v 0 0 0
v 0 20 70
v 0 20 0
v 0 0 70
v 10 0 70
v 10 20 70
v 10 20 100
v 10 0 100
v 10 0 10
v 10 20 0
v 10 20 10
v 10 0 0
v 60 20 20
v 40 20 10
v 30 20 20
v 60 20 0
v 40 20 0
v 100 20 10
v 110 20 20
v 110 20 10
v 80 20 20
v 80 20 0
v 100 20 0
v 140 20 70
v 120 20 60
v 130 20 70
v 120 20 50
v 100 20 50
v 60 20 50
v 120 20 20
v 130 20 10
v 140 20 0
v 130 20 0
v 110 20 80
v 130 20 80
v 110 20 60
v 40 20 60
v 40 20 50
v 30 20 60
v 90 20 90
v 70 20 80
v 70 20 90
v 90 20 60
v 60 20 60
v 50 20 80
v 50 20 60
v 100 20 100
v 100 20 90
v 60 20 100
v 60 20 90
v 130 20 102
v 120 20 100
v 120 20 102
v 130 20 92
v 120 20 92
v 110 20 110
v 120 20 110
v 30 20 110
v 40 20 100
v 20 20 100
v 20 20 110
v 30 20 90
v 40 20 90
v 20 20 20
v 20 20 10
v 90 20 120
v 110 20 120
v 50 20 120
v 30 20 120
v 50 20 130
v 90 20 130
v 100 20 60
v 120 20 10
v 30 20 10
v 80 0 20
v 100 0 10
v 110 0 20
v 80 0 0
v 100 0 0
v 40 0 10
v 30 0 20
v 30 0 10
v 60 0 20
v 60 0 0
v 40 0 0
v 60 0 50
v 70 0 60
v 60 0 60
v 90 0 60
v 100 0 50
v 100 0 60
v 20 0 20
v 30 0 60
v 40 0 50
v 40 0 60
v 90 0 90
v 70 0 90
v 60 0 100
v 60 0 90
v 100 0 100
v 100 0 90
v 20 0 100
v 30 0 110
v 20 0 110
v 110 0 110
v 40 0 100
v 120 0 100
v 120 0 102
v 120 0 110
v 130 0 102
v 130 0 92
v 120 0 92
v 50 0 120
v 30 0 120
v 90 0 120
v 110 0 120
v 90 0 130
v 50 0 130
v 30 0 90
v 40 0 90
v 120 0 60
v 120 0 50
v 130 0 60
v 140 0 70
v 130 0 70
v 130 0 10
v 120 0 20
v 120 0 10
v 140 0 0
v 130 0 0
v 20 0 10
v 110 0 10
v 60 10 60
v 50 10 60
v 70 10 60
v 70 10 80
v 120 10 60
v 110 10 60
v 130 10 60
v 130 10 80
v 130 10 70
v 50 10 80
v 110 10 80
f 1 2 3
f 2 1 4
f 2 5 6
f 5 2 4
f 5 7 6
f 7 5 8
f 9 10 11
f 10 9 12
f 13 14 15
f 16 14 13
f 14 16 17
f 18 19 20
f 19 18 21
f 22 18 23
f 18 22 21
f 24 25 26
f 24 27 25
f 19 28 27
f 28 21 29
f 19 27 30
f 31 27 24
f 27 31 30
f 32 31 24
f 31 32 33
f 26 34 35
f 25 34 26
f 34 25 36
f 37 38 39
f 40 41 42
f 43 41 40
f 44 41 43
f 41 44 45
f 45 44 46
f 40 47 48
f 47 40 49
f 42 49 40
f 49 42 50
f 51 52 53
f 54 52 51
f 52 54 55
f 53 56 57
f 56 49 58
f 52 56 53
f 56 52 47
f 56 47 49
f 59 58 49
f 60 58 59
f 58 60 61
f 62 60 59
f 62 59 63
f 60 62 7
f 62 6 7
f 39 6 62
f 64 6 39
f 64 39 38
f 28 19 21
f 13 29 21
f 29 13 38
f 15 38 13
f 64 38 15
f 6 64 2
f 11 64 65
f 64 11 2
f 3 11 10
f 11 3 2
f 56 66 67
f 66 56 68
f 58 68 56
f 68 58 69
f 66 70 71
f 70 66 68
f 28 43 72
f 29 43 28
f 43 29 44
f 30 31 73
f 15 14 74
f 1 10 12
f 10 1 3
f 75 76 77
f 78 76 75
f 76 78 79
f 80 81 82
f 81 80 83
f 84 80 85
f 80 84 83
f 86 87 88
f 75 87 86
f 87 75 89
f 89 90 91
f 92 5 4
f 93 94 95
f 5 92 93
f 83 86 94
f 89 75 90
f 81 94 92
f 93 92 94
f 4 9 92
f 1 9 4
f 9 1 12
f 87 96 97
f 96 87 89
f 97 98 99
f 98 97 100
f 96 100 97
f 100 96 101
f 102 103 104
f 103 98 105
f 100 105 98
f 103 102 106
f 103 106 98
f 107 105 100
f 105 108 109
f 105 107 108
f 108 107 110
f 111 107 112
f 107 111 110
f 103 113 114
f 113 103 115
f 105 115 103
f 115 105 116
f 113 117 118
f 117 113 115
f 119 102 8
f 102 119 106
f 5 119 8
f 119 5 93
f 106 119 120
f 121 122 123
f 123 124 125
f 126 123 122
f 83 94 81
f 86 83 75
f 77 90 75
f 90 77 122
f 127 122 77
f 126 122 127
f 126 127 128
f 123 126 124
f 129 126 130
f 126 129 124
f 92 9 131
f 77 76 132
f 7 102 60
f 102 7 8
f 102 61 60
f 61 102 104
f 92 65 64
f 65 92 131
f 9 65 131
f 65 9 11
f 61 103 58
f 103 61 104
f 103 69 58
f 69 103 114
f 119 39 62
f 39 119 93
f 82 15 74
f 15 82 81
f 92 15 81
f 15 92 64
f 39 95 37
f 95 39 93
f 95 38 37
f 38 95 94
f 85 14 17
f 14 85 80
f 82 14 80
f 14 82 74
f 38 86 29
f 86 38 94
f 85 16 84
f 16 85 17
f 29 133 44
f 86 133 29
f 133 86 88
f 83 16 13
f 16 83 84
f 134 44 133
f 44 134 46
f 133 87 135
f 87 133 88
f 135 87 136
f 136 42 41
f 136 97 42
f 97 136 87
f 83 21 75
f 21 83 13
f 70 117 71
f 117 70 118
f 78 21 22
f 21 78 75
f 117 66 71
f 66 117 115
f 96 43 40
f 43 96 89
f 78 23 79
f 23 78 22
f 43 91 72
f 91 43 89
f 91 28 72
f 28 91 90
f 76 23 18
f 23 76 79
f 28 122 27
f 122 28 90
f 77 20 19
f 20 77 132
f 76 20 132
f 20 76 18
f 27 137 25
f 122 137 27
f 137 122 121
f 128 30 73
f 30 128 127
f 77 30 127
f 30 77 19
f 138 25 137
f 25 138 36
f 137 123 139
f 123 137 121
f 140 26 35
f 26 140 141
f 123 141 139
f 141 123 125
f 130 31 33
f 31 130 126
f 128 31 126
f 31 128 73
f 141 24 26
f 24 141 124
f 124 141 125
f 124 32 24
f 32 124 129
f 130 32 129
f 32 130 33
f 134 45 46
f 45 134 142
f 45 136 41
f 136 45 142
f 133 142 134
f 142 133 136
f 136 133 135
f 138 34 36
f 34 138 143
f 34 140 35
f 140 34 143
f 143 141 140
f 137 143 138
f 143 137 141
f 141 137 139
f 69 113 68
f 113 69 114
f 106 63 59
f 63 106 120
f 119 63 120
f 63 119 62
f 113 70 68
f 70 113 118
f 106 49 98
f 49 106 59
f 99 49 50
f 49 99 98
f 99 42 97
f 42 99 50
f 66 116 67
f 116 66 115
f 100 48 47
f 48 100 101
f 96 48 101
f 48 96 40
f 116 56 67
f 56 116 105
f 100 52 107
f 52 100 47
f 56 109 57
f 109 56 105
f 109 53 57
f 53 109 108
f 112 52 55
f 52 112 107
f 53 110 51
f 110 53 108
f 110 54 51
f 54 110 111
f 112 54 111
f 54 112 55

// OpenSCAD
/* 
    ghosty is a 3D ghosty model
    
    Copyright (C) 2017  David Sáez González

    This program is free software: you can redistribute it and/or modify
    it under the terms of the GNU General Public License as published by
    the Free Software Foundation, either version 3 of the License, or
    (at your option) any later version.

    This program is distributed in the hope that it will be useful,
    but WITHOUT ANY WARRANTY; without even the implied warranty of
    MERCHANTABILITY or FITNESS FOR A PARTICULAR PURPOSE.  See the
    GNU General Public License for more details.

    You should have received a copy of the GNU General Public License
    along with this program.  If not, see <http://www.gnu.org/licenses/>.
*/

cube([10,20,70]);
translate([10,0,10])
cube([10,20,90]);
translate([20,0,20])
cube([10,20,90]);
translate([30,0,10])
cube([10,20,50]);
translate([40,0,0])
cube([10,20,50]);
translate([50,0,0])
cube([10,20,50]);
translate([60,0,20])
cube([10,20,40]);
translate([70,0,20])
cube([10,20,110]);
translate([80,0,0])
cube([10,20,130]);
translate([90,0,0])
cube([10,20,60]);
translate([100,0,10])
cube([10,20,40]);
translate([110,0,20])
cube([10,20,30]);
translate([120,0,10])
cube([10,20,50]);
translate([130,0,0])
cube([10,20,70]);

//Ojos
translate([50,10,60])
color ("red") cube([20,10,20]);
translate([110,10,60])
color ("red") cube([20,10,20]);

translate([30,0,90])
cube([10,20,30]);
translate([40,0,100])
cube([10,20,20]);
translate([50,0,100])
cube([10,20,30]);
translate([60,0,90])
cube([10,20,40]);
translate([90,0,90])
cube([10,20,30]);
translate([100,0,100])
cube([10,20,20]);
translate([110,0,100])
cube([10,20,10]);
translate([120,0,92])
cube([10,20,10]);
